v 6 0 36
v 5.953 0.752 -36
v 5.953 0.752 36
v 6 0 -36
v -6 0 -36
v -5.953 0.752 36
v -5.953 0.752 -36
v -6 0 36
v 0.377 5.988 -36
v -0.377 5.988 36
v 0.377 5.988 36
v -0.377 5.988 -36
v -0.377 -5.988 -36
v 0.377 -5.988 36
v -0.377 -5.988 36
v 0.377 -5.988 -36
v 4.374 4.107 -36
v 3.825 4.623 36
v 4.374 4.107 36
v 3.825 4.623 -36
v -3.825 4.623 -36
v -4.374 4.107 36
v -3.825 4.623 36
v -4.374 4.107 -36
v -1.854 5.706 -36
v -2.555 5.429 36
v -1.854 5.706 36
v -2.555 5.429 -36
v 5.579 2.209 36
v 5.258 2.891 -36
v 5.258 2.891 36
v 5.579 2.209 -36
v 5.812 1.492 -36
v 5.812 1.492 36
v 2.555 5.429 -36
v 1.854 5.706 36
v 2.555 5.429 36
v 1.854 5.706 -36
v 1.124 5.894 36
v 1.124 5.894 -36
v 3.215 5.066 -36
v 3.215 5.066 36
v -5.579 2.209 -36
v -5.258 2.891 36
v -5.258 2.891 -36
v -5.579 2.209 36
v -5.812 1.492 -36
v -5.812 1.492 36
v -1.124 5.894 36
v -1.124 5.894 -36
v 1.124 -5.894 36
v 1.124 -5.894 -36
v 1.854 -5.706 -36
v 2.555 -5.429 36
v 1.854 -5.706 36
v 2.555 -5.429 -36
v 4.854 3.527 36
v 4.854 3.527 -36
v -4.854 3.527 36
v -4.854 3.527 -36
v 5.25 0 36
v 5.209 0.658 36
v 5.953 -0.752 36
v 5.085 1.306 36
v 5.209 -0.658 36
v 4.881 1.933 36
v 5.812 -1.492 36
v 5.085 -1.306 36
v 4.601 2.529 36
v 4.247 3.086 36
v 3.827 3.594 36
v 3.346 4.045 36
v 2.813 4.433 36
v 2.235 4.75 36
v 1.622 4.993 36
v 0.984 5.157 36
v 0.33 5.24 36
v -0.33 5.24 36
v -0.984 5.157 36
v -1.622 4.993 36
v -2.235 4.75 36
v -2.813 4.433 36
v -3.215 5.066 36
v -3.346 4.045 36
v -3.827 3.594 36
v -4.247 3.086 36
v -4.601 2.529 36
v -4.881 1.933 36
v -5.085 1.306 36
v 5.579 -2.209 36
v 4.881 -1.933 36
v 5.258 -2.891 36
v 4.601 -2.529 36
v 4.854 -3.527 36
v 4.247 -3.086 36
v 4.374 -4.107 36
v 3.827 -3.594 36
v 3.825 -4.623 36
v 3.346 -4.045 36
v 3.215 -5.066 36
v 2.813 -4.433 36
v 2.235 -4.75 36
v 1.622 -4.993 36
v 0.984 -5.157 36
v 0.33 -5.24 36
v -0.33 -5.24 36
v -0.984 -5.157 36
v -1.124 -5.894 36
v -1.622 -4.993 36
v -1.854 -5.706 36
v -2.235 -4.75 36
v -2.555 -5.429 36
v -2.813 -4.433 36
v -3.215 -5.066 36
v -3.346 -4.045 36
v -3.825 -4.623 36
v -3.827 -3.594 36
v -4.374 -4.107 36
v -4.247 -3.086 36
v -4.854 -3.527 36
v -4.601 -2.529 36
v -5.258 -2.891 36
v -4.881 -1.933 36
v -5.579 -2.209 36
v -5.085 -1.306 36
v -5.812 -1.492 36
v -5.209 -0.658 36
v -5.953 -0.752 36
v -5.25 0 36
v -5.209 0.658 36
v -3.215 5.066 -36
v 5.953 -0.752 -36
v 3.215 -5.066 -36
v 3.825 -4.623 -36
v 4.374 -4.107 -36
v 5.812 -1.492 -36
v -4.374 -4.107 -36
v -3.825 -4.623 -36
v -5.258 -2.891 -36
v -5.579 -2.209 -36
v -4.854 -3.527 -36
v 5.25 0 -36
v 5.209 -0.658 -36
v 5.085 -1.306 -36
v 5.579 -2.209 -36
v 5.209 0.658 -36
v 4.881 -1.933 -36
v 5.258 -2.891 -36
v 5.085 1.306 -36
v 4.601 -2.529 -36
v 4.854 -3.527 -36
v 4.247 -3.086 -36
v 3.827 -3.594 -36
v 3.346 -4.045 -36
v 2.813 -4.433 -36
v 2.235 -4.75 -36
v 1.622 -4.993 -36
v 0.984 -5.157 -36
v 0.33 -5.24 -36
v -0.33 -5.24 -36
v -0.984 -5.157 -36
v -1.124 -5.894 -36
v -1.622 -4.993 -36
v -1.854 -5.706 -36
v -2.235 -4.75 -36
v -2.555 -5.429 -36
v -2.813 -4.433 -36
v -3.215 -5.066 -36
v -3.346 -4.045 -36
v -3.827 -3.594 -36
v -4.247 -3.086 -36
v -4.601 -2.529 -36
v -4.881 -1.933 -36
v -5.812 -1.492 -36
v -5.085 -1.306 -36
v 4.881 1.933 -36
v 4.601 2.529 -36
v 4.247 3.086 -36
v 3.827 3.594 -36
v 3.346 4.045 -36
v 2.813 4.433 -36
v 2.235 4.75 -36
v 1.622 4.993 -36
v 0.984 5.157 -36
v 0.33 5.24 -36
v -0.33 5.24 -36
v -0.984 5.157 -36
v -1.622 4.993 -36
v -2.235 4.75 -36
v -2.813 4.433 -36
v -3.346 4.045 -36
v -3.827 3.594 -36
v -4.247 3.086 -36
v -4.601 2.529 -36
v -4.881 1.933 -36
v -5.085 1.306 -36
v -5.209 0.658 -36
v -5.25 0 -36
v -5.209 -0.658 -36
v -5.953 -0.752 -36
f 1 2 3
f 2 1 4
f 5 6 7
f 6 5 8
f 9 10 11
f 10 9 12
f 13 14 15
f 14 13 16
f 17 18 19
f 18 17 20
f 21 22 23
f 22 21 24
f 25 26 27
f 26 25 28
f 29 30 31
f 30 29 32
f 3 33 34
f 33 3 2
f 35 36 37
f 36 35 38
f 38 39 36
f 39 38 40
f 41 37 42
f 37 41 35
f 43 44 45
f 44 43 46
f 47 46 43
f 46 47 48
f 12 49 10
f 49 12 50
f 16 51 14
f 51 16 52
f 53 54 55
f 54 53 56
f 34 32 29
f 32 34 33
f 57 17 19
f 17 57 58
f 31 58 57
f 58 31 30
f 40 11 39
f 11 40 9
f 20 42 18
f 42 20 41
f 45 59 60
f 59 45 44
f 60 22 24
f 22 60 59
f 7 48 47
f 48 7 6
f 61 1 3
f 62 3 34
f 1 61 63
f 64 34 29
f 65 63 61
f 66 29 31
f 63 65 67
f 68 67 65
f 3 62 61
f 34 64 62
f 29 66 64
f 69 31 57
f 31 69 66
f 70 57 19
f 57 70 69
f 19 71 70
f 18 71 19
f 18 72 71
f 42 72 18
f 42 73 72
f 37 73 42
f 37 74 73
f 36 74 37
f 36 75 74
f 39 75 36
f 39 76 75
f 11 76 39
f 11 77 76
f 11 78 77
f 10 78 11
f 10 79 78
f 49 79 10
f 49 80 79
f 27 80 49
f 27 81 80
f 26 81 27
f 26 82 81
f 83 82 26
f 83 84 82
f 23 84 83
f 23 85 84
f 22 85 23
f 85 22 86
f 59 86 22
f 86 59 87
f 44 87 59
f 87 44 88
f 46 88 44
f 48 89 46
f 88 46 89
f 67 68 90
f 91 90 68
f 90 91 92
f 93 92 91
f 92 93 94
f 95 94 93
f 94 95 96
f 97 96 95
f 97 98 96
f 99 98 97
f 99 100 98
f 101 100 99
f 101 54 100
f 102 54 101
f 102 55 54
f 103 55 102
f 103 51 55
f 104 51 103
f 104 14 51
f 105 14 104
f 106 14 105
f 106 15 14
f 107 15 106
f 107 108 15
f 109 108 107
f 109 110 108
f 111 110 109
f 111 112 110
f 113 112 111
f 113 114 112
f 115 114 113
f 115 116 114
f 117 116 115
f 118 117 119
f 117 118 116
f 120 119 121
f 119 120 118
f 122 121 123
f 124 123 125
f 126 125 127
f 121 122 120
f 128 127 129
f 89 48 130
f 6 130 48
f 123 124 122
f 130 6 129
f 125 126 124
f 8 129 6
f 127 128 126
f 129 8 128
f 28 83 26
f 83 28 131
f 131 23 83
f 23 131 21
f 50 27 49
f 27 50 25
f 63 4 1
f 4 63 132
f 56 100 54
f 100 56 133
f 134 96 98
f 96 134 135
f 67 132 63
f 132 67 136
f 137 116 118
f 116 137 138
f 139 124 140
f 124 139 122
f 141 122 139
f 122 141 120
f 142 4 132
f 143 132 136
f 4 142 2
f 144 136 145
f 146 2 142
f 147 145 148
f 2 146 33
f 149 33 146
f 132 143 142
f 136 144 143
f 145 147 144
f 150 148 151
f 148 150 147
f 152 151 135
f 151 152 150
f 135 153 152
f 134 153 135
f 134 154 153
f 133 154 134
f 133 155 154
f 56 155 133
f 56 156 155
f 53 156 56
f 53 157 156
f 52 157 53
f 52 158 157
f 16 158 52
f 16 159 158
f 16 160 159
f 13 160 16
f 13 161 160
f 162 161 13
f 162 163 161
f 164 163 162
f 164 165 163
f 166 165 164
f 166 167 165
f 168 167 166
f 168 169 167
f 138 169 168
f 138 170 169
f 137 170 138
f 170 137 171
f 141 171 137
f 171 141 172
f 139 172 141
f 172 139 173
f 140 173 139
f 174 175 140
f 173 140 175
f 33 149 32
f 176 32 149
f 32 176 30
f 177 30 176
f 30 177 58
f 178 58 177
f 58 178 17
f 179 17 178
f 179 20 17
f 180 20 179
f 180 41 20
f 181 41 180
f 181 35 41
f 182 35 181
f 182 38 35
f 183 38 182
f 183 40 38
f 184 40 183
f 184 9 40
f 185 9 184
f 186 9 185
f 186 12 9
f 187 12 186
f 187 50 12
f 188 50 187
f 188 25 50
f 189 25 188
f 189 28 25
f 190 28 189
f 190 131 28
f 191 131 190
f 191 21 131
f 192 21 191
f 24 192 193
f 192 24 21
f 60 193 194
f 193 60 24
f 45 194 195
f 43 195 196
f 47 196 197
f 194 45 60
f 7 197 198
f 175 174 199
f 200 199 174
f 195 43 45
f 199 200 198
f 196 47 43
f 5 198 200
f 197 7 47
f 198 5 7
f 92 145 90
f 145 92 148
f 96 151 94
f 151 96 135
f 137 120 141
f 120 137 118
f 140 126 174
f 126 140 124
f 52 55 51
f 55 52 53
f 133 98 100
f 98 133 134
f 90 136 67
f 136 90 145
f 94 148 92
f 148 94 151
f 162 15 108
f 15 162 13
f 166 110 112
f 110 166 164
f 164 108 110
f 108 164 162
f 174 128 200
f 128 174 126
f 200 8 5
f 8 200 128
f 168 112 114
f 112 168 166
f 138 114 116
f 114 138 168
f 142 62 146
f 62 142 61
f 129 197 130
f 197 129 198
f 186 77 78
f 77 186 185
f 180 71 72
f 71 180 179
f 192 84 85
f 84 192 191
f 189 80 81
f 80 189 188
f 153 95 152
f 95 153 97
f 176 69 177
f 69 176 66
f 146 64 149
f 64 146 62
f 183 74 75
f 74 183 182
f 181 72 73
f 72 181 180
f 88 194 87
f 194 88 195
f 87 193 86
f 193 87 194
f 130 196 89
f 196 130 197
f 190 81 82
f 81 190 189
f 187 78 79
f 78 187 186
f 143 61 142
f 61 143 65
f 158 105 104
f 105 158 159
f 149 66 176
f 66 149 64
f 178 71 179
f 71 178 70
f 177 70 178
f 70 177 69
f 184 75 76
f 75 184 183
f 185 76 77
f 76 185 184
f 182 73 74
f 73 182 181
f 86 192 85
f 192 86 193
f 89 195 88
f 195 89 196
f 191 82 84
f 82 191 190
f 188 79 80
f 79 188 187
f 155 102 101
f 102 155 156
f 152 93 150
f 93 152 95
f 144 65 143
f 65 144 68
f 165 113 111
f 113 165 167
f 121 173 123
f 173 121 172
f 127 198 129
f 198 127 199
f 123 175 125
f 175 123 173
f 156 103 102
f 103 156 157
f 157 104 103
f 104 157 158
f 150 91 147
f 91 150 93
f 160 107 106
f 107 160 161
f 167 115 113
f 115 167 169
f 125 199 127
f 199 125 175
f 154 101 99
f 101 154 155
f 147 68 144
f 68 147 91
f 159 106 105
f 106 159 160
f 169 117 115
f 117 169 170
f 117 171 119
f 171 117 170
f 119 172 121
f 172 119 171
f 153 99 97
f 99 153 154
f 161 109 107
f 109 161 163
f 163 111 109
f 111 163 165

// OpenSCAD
$fn = 50;


difference() {
	union() {
		translate(v = [0, 0, -36.0000000000]) {
			cylinder(h = 72, r = 6.0000000000);
		}
	}
	union() {
		translate(v = [0, 0, -100.0000000000]) {
			cylinder(h = 200, r = 5.2500000000);
		}
	}
}
